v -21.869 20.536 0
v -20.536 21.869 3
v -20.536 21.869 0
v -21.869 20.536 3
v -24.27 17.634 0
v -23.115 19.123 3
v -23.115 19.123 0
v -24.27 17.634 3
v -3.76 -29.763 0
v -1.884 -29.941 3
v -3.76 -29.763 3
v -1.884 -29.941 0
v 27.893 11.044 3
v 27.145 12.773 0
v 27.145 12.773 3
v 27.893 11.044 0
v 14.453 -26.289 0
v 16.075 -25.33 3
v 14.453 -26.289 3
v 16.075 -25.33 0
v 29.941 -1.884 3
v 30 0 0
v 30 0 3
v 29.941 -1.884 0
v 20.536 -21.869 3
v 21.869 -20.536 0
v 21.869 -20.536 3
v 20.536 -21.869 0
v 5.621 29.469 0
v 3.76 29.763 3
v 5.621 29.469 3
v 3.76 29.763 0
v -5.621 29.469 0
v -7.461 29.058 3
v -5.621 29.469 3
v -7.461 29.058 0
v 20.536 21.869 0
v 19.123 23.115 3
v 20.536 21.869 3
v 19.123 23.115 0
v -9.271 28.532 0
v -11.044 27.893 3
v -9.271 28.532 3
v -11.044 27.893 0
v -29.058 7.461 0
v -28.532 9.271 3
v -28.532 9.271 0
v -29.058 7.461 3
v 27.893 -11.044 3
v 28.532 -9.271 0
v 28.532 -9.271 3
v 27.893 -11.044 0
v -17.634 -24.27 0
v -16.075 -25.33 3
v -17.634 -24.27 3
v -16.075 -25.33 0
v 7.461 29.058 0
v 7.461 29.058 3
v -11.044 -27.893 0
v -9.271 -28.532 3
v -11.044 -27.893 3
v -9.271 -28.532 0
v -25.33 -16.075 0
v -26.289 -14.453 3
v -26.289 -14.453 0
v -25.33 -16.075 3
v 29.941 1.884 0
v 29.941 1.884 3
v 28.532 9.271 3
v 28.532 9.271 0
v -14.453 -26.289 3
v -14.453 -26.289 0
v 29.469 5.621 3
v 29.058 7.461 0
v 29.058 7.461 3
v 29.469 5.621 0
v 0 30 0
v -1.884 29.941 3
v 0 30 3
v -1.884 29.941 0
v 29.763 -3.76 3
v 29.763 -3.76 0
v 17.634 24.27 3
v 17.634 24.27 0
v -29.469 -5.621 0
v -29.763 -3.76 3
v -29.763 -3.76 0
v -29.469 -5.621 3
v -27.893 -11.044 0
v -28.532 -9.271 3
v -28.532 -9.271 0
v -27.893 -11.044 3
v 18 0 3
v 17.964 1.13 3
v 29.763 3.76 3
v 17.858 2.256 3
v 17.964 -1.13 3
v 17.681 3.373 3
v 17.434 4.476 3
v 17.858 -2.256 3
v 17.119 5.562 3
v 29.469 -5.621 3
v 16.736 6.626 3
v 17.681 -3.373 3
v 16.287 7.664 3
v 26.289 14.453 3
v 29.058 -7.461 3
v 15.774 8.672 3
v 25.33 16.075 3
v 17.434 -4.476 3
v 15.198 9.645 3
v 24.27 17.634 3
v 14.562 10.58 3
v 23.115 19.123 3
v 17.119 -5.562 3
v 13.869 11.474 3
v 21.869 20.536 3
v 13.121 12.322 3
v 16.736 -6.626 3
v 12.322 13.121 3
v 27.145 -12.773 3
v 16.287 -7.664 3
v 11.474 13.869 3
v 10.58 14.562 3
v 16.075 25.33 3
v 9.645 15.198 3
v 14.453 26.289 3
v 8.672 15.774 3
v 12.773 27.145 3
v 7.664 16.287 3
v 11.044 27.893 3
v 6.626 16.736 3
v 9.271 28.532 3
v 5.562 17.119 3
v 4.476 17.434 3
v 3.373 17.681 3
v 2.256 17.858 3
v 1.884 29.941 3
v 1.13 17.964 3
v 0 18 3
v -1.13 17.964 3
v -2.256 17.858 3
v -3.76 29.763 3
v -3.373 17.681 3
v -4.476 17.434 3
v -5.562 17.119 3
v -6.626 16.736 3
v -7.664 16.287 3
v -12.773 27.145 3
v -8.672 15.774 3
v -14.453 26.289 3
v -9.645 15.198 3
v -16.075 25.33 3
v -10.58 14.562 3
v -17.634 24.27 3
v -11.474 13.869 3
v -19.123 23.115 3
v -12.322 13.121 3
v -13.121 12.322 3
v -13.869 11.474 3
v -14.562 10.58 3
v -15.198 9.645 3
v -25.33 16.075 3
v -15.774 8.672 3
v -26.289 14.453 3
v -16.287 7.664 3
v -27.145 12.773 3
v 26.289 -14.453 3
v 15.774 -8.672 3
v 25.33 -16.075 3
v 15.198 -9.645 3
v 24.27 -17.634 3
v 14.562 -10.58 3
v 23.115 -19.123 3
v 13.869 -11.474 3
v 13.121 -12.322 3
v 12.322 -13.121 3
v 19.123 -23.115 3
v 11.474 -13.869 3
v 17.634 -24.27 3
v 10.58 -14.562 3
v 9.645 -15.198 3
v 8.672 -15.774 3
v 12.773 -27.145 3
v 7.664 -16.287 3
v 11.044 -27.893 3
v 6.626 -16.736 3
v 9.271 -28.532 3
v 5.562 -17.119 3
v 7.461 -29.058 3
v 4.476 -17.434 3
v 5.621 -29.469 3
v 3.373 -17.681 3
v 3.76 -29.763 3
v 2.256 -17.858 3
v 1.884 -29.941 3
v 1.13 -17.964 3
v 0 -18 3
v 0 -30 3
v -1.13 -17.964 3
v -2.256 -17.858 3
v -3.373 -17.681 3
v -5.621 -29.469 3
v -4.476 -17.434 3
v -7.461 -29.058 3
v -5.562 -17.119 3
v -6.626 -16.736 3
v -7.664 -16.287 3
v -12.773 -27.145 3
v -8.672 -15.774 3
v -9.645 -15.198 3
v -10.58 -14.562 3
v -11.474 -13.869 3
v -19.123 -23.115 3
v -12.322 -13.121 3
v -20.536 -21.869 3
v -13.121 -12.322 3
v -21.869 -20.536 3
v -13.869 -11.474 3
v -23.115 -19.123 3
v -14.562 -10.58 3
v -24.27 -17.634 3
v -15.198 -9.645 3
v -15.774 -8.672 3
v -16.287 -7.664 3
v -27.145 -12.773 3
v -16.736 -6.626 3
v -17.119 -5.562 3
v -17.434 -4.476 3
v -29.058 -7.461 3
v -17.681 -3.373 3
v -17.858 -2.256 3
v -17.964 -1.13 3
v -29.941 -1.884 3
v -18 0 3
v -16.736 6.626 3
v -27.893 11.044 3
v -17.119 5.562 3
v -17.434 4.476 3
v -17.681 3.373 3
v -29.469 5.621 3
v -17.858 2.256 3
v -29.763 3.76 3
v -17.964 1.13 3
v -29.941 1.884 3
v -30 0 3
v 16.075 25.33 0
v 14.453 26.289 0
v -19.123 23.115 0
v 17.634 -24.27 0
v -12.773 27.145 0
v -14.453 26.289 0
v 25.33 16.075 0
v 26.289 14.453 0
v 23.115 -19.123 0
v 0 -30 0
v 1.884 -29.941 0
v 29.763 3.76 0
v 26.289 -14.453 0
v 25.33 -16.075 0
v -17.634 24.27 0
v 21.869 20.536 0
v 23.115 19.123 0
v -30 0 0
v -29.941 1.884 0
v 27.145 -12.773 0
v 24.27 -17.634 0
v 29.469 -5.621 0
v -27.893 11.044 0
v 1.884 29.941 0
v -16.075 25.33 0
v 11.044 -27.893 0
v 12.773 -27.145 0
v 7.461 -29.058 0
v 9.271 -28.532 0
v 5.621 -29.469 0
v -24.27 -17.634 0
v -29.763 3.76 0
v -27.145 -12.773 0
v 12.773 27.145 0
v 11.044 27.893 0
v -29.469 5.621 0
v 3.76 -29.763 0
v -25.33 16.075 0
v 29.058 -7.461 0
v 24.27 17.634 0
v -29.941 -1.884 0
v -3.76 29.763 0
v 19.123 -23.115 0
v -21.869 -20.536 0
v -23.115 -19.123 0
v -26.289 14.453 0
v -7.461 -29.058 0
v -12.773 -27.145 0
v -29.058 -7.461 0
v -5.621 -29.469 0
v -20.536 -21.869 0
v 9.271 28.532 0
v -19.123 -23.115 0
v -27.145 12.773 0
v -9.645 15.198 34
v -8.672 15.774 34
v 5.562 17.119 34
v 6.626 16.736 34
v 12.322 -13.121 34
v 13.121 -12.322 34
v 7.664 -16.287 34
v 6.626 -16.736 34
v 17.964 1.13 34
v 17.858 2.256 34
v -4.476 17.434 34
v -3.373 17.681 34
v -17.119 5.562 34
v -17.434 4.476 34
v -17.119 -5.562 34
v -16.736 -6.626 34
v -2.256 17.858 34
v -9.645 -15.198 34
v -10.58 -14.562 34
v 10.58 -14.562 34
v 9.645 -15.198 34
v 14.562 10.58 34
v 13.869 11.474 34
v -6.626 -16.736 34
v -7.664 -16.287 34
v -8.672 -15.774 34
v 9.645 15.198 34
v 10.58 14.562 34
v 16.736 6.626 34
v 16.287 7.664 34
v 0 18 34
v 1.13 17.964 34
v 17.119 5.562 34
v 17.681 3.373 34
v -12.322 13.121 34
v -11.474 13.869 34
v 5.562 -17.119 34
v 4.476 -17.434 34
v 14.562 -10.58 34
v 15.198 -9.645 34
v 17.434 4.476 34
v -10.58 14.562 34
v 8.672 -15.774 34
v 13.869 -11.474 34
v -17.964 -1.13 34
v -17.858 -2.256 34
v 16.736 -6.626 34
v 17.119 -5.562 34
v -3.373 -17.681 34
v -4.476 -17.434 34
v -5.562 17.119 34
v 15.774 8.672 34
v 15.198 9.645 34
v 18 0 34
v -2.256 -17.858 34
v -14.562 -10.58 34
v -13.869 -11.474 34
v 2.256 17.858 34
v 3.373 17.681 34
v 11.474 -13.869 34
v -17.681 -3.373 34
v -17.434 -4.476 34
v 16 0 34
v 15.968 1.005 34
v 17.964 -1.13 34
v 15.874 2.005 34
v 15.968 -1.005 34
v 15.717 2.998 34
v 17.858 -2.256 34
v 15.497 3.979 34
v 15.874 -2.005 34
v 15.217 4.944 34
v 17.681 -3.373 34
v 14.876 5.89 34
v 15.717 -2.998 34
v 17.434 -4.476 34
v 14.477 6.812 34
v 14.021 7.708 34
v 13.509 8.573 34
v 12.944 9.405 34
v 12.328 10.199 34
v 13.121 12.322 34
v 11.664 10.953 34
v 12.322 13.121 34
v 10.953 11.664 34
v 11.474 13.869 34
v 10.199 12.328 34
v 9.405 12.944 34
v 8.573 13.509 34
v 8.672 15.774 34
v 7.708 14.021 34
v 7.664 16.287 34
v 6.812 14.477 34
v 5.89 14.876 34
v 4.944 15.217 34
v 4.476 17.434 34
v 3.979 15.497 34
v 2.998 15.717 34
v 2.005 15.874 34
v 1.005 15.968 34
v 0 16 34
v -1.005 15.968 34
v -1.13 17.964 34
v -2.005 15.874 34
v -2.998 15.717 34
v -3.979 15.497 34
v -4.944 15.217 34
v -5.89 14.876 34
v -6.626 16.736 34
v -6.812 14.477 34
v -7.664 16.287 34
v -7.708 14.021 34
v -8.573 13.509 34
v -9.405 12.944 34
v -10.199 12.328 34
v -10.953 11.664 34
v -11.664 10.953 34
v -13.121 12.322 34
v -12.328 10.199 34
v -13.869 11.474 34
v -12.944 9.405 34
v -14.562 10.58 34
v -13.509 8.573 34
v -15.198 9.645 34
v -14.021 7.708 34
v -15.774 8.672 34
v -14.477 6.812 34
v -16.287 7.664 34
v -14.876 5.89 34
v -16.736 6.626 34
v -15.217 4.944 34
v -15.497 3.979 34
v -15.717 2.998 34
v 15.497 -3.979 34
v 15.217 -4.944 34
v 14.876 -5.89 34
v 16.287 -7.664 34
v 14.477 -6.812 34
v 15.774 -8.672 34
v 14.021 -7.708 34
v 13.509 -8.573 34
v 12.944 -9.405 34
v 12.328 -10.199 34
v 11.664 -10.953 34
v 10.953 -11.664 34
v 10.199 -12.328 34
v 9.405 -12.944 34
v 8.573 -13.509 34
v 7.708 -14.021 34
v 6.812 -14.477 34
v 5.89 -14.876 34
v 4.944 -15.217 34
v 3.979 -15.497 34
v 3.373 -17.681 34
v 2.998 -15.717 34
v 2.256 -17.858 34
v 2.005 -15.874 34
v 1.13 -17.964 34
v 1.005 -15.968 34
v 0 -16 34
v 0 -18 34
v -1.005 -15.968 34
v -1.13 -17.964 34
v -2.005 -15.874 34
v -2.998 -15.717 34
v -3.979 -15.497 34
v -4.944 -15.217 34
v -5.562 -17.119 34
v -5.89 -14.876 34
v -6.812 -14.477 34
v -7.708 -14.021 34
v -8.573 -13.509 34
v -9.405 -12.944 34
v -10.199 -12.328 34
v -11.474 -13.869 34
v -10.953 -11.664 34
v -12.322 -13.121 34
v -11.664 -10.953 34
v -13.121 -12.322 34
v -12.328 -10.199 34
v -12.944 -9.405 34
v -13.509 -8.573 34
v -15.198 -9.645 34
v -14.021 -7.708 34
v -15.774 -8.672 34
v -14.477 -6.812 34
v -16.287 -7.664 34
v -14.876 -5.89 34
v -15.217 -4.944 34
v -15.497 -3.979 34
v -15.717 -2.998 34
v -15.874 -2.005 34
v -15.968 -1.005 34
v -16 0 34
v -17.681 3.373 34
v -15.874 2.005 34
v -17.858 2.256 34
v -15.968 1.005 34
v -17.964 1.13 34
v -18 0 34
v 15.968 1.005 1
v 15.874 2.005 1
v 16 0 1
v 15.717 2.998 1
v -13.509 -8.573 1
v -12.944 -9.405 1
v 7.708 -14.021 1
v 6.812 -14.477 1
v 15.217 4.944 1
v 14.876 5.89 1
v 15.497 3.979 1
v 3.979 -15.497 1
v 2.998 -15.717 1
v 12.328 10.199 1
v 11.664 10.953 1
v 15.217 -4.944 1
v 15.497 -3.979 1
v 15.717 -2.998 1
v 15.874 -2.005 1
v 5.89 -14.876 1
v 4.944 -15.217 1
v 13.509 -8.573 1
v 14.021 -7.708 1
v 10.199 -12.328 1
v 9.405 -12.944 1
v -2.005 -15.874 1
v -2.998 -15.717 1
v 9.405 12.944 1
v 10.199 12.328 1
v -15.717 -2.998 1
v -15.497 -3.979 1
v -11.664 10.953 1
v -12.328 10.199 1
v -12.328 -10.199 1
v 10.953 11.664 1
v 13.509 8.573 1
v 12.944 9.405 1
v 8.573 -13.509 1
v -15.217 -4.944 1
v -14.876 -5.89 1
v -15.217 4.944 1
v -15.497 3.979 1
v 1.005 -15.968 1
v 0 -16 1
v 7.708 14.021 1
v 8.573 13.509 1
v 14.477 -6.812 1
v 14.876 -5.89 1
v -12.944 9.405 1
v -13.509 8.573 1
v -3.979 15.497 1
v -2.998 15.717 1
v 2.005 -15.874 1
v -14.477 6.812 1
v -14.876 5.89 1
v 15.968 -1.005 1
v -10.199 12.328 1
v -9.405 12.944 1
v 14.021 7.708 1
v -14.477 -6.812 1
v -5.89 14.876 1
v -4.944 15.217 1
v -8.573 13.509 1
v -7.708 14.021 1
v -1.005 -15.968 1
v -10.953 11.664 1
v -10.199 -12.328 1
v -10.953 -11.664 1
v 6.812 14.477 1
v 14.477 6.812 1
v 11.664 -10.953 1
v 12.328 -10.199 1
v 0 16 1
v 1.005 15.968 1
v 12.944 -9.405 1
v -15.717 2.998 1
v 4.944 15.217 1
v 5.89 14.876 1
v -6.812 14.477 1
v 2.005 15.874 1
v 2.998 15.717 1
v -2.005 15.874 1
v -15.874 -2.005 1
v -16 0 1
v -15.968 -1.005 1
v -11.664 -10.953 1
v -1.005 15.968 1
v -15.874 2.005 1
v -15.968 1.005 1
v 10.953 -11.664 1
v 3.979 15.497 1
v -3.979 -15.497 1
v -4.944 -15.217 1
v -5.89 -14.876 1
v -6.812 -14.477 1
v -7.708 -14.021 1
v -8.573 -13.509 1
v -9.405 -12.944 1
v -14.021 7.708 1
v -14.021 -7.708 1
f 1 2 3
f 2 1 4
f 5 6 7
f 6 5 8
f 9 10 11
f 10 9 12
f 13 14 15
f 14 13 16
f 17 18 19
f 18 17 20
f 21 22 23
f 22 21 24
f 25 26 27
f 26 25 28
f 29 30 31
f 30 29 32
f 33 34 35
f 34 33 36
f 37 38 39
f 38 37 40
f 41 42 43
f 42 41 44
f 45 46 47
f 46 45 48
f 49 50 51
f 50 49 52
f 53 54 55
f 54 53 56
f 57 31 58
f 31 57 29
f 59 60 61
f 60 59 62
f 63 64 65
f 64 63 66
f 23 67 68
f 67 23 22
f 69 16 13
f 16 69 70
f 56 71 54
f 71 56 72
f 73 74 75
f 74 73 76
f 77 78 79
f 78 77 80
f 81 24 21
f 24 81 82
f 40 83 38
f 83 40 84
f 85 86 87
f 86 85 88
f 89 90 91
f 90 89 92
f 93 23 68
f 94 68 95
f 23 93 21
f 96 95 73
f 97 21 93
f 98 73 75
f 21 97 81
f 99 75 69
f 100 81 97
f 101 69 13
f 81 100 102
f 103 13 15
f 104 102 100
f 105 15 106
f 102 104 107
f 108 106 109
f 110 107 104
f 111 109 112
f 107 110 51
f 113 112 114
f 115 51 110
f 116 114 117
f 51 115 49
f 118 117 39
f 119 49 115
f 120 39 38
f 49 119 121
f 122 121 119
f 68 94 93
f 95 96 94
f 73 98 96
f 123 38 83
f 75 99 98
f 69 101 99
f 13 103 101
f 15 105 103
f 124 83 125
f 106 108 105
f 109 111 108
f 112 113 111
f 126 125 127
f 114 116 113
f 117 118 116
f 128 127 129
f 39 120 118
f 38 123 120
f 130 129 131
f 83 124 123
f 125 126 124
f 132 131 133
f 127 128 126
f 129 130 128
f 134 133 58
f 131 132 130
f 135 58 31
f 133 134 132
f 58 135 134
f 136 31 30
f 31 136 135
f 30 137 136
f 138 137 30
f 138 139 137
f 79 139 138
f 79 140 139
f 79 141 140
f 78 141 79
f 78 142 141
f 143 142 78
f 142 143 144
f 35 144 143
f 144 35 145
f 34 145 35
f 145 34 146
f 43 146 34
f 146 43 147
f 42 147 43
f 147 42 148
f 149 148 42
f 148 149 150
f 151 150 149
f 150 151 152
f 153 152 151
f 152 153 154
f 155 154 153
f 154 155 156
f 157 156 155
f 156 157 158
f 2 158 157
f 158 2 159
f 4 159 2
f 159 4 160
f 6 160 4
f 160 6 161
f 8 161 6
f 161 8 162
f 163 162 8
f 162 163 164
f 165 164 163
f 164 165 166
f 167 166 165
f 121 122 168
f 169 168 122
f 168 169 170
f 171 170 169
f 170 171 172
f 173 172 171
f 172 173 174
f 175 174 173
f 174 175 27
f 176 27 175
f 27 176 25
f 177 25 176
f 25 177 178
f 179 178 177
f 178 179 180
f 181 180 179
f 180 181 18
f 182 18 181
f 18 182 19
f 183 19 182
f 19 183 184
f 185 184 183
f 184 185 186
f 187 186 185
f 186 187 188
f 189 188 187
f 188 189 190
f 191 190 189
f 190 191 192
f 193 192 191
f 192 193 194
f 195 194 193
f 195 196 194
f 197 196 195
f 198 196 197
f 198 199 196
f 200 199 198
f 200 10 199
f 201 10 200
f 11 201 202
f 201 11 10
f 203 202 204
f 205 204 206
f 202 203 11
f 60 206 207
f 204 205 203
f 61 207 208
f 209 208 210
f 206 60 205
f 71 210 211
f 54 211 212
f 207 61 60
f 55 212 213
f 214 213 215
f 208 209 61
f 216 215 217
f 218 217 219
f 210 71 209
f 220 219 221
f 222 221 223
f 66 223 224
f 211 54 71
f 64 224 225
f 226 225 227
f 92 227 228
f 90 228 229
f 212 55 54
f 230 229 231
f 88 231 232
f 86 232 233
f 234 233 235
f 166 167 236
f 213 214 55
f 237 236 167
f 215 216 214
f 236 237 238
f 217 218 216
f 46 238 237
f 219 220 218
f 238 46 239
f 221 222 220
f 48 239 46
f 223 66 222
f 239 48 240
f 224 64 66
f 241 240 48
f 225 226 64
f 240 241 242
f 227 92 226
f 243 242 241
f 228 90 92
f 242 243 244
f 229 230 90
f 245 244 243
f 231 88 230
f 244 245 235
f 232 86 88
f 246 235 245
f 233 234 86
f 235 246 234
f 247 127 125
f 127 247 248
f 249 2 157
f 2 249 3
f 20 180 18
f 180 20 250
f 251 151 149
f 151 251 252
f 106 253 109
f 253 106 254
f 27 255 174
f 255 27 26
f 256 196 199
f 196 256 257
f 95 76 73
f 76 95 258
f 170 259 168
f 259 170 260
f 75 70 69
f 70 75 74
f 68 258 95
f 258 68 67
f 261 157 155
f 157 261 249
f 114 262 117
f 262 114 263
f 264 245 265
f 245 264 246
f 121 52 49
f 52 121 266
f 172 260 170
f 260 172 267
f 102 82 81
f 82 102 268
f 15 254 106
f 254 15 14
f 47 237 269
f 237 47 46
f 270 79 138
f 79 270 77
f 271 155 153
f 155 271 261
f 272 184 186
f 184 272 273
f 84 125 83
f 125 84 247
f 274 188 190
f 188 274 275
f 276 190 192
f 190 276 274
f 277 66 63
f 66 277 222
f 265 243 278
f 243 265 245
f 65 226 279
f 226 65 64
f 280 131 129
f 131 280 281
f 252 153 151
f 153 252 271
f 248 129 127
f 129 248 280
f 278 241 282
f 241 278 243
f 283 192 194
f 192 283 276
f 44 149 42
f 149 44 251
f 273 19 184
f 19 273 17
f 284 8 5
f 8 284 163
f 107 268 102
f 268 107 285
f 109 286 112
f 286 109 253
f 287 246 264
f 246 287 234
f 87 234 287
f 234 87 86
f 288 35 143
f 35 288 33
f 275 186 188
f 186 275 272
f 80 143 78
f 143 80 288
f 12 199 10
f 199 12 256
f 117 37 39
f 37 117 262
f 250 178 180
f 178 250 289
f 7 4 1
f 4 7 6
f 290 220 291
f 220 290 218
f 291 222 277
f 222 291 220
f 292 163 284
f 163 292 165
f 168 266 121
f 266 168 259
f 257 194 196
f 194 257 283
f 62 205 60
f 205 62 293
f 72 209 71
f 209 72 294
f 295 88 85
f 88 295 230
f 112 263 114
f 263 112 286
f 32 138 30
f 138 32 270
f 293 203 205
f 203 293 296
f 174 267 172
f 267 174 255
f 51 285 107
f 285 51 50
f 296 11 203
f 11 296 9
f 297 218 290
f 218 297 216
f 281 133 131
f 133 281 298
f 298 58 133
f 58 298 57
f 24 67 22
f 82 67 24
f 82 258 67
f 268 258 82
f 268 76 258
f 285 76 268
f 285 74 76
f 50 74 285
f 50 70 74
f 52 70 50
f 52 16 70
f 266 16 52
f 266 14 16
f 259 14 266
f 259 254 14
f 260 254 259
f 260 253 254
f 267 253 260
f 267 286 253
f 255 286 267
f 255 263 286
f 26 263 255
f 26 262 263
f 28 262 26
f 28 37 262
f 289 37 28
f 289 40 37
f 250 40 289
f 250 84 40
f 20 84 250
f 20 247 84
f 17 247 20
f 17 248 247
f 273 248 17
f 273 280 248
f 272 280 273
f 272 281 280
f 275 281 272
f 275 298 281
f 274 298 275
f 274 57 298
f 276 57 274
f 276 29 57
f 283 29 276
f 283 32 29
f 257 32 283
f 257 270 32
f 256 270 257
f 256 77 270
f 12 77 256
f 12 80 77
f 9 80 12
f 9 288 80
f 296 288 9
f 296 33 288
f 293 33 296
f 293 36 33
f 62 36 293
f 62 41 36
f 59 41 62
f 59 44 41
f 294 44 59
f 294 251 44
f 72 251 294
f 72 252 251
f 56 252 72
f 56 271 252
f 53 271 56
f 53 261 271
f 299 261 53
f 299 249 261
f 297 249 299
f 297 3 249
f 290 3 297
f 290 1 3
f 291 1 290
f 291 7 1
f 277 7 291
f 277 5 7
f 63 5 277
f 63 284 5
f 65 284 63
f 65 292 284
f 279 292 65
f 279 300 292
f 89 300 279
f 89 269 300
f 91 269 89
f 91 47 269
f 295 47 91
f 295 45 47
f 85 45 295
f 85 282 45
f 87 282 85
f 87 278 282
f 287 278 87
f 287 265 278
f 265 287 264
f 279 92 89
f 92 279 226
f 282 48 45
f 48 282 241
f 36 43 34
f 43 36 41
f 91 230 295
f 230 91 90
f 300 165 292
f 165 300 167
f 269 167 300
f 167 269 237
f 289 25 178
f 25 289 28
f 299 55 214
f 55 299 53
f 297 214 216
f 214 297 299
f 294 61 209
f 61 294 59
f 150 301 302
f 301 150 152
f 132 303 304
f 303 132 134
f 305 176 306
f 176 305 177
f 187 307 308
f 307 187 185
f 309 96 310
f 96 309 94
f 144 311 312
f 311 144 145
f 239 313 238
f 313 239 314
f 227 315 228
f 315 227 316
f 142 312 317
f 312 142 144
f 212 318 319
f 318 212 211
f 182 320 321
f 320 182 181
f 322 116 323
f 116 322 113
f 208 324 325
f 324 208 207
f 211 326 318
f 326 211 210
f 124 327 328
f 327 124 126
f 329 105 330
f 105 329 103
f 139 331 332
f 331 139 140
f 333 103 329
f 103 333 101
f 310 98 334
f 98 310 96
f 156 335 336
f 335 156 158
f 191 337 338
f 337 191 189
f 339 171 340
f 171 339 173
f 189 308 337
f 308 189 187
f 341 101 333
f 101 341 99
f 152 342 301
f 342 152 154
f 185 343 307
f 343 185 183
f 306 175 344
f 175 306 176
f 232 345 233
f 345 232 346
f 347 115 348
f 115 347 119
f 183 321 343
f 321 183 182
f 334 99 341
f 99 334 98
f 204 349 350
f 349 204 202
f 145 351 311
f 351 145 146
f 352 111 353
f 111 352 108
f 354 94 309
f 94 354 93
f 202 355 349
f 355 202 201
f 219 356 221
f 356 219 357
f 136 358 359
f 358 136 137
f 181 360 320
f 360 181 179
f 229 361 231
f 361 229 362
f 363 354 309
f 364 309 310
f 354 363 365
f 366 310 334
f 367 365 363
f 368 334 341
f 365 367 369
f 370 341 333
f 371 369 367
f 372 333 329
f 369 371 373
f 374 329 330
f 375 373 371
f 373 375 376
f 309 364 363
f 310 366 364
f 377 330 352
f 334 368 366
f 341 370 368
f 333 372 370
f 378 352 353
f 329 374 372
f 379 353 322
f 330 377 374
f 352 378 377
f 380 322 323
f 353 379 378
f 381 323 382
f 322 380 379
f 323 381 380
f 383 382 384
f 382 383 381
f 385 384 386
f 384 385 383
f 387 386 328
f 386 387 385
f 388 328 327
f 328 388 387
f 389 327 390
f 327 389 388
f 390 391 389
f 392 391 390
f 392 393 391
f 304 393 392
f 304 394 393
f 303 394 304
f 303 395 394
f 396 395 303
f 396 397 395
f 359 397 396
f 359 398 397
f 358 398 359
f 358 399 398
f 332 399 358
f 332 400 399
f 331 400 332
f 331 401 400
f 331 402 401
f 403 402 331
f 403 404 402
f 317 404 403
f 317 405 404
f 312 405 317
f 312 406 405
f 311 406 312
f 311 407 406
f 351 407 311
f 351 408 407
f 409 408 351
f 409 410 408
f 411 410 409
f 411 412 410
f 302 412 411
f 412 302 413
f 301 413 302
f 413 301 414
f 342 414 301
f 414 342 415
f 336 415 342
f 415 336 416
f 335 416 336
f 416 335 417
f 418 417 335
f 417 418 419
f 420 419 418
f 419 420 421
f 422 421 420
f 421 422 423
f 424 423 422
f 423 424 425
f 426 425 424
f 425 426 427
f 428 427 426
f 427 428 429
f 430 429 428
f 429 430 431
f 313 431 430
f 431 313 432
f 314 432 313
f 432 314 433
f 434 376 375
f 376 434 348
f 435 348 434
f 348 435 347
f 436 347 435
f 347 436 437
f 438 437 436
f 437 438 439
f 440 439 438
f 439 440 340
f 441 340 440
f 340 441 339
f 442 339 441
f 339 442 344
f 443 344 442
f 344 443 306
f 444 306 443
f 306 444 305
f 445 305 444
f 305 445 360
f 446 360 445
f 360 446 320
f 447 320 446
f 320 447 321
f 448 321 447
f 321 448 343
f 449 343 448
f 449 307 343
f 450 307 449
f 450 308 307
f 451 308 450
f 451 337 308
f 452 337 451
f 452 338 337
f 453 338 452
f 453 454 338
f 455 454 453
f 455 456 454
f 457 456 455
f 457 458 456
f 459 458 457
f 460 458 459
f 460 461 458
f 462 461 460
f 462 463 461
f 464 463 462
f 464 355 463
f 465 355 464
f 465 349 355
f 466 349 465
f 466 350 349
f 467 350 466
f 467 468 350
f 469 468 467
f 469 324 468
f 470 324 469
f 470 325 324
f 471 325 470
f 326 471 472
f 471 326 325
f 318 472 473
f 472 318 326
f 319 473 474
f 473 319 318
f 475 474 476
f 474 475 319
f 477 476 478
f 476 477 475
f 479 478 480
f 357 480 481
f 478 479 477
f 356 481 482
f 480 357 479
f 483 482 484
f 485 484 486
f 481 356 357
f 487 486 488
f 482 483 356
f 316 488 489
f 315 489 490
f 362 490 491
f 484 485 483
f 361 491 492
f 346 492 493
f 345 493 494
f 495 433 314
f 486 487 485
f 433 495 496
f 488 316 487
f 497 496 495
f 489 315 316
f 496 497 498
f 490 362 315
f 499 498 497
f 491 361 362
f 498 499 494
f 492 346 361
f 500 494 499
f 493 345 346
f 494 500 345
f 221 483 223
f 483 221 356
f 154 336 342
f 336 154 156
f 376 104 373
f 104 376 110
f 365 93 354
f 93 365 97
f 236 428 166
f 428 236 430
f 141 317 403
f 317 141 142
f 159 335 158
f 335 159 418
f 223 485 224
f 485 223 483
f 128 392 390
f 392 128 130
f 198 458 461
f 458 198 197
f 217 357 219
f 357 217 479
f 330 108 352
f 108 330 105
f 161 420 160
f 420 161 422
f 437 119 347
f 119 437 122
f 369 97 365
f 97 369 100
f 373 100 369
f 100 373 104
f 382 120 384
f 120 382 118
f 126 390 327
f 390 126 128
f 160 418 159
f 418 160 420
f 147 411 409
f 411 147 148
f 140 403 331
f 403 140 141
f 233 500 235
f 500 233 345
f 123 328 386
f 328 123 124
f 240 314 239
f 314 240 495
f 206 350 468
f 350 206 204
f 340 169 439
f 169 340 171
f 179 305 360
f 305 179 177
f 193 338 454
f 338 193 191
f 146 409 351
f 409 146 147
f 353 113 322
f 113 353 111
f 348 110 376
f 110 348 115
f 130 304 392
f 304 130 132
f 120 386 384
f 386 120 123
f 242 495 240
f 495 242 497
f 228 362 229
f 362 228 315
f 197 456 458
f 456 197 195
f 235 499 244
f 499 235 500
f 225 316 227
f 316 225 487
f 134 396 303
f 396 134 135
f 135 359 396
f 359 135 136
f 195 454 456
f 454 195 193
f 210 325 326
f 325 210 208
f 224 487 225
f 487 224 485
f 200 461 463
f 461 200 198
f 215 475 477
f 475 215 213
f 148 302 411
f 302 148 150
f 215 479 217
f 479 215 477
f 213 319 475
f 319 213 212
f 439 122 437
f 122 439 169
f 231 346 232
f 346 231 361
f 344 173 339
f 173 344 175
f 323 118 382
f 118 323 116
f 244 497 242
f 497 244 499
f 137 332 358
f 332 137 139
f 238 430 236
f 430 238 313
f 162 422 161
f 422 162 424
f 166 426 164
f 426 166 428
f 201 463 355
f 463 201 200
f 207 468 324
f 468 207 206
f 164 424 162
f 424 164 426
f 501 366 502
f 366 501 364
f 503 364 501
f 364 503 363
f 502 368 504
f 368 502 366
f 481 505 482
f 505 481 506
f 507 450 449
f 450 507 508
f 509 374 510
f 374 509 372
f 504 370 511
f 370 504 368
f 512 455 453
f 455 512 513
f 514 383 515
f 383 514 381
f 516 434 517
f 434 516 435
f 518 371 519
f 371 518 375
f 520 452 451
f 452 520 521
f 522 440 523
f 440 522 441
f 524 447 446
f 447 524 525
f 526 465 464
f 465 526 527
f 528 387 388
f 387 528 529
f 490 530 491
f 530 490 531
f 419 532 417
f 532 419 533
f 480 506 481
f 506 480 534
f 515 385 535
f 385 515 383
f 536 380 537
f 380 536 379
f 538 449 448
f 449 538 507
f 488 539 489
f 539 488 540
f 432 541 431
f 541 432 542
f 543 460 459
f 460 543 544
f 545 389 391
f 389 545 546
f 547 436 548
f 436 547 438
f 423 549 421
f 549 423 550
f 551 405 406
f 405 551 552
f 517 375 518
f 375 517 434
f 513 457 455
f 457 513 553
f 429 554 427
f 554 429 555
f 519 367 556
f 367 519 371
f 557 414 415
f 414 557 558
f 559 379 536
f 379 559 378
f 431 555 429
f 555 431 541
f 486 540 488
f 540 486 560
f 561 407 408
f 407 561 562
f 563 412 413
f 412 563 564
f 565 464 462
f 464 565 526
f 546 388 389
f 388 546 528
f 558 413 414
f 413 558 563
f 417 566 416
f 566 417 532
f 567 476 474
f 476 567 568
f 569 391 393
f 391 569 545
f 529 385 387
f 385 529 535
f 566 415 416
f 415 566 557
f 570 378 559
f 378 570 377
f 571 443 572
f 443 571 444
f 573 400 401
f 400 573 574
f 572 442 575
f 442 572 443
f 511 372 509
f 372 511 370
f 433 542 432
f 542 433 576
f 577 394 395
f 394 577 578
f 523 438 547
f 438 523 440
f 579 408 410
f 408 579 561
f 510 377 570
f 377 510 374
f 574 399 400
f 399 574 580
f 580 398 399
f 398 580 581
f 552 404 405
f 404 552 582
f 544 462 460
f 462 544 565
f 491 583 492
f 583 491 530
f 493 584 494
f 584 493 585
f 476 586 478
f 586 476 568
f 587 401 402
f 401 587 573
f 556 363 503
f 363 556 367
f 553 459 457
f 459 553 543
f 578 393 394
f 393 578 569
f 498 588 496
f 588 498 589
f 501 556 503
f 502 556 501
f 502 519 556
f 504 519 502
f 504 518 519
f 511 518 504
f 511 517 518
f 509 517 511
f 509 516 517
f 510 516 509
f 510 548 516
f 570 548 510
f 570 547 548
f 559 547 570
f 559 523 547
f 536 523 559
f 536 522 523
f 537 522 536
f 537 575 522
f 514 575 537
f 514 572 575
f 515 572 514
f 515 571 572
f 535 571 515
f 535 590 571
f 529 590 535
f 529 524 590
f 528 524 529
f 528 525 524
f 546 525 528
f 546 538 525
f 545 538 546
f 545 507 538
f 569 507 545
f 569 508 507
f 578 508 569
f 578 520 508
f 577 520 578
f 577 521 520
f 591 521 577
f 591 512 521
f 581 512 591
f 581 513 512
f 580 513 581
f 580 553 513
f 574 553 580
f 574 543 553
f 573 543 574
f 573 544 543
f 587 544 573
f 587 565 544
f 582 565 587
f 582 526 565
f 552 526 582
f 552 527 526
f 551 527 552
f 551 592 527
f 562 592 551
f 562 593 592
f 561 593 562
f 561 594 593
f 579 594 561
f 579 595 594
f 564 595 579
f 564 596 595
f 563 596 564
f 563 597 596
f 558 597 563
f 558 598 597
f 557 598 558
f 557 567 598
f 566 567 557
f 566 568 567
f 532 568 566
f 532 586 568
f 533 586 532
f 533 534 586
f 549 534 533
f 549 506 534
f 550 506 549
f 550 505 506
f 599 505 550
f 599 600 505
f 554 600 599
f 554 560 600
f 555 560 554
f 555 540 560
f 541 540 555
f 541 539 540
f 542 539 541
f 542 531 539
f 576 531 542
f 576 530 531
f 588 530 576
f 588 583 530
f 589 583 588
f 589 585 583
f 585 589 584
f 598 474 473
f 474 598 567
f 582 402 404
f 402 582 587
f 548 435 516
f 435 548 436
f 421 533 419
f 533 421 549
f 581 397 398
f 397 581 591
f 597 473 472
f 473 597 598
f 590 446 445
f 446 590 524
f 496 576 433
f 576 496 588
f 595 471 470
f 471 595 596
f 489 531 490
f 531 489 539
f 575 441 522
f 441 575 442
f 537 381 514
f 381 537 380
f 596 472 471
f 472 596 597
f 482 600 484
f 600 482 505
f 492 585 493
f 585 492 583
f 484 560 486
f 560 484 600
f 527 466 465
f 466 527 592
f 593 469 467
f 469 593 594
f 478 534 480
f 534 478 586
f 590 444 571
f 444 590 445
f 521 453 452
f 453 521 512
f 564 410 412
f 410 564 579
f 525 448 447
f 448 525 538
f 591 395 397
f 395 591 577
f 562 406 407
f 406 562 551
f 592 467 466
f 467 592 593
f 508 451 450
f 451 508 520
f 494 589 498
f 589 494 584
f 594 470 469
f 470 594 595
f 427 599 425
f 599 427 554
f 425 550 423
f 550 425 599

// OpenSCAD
// stabilize a small bottle in a drawer so it doesn't tip over

$fn=100;
difference() {
union() {
        cylinder(3,d=60);
        cylinder(34,d=36);
    }
    translate([0,0,1]) cylinder(50,d=32);
}
